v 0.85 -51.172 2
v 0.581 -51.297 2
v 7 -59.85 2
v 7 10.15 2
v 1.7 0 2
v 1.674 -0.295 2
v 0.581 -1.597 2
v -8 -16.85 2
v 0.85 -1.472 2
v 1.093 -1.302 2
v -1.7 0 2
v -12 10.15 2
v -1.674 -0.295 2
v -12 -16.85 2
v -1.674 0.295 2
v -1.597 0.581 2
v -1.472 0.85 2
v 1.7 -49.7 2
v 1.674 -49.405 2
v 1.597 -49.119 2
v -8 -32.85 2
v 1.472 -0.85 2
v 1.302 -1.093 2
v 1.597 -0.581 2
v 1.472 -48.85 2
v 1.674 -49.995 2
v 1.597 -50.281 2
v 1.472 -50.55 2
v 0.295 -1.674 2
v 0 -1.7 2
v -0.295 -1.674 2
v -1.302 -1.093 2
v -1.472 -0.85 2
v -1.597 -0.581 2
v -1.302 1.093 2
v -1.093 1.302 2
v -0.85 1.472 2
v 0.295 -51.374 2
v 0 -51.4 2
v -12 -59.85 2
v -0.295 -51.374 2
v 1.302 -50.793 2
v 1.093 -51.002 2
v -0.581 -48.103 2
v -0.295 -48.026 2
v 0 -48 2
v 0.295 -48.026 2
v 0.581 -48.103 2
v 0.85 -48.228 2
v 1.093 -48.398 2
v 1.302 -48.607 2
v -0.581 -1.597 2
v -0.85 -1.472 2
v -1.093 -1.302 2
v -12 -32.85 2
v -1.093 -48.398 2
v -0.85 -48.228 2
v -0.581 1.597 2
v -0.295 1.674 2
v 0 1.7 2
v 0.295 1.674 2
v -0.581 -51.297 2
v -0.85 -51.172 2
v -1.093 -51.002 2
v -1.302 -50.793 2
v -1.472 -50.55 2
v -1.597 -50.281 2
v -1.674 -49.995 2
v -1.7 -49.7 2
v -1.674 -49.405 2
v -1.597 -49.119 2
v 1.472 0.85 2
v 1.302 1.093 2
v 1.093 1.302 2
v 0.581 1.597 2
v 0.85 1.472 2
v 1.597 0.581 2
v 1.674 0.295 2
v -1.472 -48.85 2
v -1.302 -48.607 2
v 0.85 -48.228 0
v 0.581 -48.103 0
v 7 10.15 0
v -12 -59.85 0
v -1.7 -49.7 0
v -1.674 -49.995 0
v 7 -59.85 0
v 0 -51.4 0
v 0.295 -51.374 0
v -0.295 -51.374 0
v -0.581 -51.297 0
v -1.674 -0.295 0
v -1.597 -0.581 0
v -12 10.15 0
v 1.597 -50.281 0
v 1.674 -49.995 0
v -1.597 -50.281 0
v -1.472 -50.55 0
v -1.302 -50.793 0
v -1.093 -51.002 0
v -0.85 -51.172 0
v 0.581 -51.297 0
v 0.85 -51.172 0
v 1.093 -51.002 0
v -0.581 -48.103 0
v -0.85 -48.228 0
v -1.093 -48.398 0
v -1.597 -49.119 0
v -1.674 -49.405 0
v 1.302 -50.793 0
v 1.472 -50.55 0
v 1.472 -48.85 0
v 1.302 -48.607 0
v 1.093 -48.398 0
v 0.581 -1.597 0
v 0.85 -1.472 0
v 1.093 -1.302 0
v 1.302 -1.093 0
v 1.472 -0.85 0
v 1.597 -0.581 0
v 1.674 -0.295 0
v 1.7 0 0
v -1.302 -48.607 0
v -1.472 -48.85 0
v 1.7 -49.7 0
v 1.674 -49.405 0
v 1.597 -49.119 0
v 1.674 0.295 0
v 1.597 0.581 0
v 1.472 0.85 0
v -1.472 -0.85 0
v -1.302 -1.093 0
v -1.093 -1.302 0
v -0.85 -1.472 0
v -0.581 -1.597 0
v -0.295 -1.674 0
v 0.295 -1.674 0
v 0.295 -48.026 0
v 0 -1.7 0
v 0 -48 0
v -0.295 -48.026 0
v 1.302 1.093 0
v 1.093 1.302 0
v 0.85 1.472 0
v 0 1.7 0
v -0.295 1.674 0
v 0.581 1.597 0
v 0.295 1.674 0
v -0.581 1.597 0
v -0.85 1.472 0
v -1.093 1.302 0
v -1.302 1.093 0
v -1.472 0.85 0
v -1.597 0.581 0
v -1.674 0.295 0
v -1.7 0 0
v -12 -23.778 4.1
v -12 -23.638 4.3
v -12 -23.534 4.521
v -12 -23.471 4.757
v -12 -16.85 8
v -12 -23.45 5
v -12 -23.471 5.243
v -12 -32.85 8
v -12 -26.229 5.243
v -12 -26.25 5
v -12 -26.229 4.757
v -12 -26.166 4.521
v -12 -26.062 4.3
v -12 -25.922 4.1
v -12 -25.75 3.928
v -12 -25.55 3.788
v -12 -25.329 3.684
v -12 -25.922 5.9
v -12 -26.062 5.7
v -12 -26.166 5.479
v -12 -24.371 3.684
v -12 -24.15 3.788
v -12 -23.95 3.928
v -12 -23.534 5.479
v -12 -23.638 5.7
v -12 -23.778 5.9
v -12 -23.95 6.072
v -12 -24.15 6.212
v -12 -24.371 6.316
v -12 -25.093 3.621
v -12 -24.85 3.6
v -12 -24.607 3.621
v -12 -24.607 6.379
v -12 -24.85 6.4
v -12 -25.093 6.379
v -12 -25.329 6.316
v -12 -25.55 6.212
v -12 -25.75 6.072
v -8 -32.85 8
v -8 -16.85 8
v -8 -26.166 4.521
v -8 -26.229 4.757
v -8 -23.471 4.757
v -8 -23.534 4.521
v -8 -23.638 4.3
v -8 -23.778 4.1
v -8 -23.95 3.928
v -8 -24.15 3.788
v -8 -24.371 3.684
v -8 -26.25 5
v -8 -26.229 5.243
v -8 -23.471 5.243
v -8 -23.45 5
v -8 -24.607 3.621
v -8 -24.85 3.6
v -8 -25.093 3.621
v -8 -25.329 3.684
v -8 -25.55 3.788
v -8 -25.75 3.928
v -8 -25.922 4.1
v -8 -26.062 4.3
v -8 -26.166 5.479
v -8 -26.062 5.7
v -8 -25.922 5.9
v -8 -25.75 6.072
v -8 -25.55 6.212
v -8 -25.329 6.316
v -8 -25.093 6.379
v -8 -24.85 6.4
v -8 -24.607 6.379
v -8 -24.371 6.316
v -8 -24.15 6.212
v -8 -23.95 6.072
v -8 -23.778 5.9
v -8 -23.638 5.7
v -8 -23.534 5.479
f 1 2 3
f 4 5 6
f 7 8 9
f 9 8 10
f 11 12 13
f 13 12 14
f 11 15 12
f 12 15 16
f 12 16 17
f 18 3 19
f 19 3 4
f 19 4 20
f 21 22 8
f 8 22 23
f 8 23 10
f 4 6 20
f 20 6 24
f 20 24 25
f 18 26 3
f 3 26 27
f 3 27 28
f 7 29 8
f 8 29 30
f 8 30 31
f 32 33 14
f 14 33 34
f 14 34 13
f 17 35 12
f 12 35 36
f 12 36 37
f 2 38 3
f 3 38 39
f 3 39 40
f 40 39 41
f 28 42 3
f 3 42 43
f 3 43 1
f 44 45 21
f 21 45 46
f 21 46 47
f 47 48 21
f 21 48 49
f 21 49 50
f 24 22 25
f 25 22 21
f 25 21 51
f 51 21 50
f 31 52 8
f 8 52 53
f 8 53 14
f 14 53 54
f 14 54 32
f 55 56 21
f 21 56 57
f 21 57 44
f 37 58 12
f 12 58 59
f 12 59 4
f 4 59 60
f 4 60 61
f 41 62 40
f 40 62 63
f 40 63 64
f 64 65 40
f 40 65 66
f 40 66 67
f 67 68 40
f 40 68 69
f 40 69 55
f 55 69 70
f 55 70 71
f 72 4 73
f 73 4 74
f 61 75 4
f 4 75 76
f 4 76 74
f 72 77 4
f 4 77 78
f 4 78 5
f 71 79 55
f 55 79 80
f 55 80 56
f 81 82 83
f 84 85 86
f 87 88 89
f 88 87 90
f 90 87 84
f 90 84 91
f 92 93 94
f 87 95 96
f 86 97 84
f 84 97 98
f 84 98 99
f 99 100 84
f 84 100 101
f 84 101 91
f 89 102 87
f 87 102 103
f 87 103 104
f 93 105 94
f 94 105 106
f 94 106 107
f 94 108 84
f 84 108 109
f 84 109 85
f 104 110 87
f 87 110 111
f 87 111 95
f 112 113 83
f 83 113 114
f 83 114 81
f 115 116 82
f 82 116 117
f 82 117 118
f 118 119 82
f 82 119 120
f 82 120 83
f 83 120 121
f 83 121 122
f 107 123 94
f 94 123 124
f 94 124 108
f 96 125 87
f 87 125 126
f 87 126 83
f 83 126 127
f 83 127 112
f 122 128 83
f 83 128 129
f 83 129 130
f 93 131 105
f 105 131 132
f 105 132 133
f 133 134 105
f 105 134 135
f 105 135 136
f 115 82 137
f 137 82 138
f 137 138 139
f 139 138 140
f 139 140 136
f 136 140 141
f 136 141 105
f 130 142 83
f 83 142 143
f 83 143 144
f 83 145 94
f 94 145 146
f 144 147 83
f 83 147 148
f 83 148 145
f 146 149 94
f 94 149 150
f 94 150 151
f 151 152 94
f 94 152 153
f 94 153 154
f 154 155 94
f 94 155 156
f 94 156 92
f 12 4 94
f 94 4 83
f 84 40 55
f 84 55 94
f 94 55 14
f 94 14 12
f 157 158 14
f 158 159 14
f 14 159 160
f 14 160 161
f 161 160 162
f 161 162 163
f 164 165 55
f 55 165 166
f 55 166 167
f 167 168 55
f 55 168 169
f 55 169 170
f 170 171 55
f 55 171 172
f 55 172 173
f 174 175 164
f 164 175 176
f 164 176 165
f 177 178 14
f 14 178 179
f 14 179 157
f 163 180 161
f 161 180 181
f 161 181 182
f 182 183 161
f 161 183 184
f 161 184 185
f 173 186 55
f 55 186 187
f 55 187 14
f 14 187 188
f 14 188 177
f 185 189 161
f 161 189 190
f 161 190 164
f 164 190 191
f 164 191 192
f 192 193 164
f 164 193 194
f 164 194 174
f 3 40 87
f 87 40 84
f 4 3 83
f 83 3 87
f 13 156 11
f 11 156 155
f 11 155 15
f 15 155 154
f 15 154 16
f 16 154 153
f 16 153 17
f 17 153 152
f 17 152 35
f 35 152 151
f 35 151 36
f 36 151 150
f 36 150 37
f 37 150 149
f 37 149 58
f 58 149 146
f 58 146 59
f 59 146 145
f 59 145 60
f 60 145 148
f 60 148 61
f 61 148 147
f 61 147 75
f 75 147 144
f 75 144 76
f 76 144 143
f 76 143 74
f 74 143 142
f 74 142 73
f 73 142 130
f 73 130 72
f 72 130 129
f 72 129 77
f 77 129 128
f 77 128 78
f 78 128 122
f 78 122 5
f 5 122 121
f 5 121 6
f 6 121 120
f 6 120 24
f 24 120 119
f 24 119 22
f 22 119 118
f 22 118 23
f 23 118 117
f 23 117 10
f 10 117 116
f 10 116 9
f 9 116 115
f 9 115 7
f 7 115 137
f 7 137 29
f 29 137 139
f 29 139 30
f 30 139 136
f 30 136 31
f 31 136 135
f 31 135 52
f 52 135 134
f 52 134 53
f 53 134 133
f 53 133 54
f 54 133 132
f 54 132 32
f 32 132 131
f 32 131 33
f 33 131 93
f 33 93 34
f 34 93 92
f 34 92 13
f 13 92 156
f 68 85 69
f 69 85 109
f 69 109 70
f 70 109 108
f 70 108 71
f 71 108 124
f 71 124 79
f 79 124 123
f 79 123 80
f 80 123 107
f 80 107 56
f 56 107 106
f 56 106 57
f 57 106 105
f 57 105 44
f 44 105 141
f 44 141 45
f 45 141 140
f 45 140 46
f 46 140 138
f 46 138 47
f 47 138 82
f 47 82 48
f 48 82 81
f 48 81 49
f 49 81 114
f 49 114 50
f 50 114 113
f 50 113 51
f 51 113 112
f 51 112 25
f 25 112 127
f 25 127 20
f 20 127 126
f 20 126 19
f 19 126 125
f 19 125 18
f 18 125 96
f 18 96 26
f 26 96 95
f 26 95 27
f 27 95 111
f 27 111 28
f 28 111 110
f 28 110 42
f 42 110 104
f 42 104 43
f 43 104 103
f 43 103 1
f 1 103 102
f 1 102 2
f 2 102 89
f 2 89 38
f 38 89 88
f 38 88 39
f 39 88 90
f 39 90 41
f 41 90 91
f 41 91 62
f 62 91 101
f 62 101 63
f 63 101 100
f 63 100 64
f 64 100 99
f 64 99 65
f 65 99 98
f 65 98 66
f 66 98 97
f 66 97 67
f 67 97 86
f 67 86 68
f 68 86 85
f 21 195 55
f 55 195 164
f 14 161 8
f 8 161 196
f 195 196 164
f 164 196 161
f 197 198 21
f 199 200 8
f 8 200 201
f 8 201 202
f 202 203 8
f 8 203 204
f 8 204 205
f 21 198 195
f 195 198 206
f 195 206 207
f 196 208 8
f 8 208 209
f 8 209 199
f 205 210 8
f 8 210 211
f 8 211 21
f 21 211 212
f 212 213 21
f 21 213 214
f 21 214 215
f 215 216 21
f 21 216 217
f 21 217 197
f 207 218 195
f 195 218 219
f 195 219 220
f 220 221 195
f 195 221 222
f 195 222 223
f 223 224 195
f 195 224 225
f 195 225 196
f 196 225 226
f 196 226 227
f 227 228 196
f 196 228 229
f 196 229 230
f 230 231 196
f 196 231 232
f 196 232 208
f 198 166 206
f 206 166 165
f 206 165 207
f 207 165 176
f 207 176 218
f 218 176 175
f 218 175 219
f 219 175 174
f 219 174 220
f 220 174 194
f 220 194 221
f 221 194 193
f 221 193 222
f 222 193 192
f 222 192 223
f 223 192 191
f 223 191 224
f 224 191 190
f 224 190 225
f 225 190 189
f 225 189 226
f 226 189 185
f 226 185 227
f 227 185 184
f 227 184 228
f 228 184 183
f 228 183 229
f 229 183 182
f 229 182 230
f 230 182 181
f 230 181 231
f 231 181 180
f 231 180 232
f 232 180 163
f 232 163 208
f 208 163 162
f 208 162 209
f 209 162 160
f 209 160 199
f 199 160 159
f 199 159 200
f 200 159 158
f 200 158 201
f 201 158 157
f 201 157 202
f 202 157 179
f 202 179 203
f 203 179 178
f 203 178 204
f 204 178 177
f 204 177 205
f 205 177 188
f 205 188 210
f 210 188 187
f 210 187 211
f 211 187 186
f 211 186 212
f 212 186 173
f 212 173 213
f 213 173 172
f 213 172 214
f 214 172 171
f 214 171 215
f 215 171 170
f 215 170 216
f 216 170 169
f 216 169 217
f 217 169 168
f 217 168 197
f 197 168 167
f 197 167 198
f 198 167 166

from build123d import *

# Parameters (mm, degrees)
ESQUISSE1_W             = 19
ESQUISSE1_H             = 70
ESQUISSE1_R             = 1.7
BOSS_EXTRU_1_DEPTH      = 2
ESQUISSE2_W             = 8
ESQUISSE2_H             = 16
BOSS_EXTRU_2_DEPTH      = 4
ESQUISSE3_R             = 1.4
ENL_V_MAT_EXTRU_1_DEPTH = 4


with BuildPart() as part:
    # Esquisse1 → Boss.-Extru.1 (new body)
    with BuildSketch(Plane.XY):
        with Locations((-2.5, -24.85)):
            Rectangle(ESQUISSE1_W, ESQUISSE1_H)
        Circle(ESQUISSE1_R, mode=Mode.SUBTRACT)
        with Locations((0, -49.7)):
            Circle(ESQUISSE1_R, mode=Mode.SUBTRACT)
    extrude(amount=BOSS_EXTRU_1_DEPTH)

    # Esquisse2 → Boss.-Extru.2 (add)
    with BuildSketch(Plane.ZY.offset(12)):
        with Locations((4, -24.85)):
            Rectangle(ESQUISSE2_W, ESQUISSE2_H)
    extrude(amount=-BOSS_EXTRU_2_DEPTH)

    # Esquisse3 → Enlèv. mat.-Extru.1 (cut)
    with BuildSketch(Plane.ZY.offset(12)):
        with Locations((5, -24.85)):
            Circle(ESQUISSE3_R)
    extrude(amount=-ENL_V_MAT_EXTRU_1_DEPTH, mode=Mode.SUBTRACT)


solid = part.part
